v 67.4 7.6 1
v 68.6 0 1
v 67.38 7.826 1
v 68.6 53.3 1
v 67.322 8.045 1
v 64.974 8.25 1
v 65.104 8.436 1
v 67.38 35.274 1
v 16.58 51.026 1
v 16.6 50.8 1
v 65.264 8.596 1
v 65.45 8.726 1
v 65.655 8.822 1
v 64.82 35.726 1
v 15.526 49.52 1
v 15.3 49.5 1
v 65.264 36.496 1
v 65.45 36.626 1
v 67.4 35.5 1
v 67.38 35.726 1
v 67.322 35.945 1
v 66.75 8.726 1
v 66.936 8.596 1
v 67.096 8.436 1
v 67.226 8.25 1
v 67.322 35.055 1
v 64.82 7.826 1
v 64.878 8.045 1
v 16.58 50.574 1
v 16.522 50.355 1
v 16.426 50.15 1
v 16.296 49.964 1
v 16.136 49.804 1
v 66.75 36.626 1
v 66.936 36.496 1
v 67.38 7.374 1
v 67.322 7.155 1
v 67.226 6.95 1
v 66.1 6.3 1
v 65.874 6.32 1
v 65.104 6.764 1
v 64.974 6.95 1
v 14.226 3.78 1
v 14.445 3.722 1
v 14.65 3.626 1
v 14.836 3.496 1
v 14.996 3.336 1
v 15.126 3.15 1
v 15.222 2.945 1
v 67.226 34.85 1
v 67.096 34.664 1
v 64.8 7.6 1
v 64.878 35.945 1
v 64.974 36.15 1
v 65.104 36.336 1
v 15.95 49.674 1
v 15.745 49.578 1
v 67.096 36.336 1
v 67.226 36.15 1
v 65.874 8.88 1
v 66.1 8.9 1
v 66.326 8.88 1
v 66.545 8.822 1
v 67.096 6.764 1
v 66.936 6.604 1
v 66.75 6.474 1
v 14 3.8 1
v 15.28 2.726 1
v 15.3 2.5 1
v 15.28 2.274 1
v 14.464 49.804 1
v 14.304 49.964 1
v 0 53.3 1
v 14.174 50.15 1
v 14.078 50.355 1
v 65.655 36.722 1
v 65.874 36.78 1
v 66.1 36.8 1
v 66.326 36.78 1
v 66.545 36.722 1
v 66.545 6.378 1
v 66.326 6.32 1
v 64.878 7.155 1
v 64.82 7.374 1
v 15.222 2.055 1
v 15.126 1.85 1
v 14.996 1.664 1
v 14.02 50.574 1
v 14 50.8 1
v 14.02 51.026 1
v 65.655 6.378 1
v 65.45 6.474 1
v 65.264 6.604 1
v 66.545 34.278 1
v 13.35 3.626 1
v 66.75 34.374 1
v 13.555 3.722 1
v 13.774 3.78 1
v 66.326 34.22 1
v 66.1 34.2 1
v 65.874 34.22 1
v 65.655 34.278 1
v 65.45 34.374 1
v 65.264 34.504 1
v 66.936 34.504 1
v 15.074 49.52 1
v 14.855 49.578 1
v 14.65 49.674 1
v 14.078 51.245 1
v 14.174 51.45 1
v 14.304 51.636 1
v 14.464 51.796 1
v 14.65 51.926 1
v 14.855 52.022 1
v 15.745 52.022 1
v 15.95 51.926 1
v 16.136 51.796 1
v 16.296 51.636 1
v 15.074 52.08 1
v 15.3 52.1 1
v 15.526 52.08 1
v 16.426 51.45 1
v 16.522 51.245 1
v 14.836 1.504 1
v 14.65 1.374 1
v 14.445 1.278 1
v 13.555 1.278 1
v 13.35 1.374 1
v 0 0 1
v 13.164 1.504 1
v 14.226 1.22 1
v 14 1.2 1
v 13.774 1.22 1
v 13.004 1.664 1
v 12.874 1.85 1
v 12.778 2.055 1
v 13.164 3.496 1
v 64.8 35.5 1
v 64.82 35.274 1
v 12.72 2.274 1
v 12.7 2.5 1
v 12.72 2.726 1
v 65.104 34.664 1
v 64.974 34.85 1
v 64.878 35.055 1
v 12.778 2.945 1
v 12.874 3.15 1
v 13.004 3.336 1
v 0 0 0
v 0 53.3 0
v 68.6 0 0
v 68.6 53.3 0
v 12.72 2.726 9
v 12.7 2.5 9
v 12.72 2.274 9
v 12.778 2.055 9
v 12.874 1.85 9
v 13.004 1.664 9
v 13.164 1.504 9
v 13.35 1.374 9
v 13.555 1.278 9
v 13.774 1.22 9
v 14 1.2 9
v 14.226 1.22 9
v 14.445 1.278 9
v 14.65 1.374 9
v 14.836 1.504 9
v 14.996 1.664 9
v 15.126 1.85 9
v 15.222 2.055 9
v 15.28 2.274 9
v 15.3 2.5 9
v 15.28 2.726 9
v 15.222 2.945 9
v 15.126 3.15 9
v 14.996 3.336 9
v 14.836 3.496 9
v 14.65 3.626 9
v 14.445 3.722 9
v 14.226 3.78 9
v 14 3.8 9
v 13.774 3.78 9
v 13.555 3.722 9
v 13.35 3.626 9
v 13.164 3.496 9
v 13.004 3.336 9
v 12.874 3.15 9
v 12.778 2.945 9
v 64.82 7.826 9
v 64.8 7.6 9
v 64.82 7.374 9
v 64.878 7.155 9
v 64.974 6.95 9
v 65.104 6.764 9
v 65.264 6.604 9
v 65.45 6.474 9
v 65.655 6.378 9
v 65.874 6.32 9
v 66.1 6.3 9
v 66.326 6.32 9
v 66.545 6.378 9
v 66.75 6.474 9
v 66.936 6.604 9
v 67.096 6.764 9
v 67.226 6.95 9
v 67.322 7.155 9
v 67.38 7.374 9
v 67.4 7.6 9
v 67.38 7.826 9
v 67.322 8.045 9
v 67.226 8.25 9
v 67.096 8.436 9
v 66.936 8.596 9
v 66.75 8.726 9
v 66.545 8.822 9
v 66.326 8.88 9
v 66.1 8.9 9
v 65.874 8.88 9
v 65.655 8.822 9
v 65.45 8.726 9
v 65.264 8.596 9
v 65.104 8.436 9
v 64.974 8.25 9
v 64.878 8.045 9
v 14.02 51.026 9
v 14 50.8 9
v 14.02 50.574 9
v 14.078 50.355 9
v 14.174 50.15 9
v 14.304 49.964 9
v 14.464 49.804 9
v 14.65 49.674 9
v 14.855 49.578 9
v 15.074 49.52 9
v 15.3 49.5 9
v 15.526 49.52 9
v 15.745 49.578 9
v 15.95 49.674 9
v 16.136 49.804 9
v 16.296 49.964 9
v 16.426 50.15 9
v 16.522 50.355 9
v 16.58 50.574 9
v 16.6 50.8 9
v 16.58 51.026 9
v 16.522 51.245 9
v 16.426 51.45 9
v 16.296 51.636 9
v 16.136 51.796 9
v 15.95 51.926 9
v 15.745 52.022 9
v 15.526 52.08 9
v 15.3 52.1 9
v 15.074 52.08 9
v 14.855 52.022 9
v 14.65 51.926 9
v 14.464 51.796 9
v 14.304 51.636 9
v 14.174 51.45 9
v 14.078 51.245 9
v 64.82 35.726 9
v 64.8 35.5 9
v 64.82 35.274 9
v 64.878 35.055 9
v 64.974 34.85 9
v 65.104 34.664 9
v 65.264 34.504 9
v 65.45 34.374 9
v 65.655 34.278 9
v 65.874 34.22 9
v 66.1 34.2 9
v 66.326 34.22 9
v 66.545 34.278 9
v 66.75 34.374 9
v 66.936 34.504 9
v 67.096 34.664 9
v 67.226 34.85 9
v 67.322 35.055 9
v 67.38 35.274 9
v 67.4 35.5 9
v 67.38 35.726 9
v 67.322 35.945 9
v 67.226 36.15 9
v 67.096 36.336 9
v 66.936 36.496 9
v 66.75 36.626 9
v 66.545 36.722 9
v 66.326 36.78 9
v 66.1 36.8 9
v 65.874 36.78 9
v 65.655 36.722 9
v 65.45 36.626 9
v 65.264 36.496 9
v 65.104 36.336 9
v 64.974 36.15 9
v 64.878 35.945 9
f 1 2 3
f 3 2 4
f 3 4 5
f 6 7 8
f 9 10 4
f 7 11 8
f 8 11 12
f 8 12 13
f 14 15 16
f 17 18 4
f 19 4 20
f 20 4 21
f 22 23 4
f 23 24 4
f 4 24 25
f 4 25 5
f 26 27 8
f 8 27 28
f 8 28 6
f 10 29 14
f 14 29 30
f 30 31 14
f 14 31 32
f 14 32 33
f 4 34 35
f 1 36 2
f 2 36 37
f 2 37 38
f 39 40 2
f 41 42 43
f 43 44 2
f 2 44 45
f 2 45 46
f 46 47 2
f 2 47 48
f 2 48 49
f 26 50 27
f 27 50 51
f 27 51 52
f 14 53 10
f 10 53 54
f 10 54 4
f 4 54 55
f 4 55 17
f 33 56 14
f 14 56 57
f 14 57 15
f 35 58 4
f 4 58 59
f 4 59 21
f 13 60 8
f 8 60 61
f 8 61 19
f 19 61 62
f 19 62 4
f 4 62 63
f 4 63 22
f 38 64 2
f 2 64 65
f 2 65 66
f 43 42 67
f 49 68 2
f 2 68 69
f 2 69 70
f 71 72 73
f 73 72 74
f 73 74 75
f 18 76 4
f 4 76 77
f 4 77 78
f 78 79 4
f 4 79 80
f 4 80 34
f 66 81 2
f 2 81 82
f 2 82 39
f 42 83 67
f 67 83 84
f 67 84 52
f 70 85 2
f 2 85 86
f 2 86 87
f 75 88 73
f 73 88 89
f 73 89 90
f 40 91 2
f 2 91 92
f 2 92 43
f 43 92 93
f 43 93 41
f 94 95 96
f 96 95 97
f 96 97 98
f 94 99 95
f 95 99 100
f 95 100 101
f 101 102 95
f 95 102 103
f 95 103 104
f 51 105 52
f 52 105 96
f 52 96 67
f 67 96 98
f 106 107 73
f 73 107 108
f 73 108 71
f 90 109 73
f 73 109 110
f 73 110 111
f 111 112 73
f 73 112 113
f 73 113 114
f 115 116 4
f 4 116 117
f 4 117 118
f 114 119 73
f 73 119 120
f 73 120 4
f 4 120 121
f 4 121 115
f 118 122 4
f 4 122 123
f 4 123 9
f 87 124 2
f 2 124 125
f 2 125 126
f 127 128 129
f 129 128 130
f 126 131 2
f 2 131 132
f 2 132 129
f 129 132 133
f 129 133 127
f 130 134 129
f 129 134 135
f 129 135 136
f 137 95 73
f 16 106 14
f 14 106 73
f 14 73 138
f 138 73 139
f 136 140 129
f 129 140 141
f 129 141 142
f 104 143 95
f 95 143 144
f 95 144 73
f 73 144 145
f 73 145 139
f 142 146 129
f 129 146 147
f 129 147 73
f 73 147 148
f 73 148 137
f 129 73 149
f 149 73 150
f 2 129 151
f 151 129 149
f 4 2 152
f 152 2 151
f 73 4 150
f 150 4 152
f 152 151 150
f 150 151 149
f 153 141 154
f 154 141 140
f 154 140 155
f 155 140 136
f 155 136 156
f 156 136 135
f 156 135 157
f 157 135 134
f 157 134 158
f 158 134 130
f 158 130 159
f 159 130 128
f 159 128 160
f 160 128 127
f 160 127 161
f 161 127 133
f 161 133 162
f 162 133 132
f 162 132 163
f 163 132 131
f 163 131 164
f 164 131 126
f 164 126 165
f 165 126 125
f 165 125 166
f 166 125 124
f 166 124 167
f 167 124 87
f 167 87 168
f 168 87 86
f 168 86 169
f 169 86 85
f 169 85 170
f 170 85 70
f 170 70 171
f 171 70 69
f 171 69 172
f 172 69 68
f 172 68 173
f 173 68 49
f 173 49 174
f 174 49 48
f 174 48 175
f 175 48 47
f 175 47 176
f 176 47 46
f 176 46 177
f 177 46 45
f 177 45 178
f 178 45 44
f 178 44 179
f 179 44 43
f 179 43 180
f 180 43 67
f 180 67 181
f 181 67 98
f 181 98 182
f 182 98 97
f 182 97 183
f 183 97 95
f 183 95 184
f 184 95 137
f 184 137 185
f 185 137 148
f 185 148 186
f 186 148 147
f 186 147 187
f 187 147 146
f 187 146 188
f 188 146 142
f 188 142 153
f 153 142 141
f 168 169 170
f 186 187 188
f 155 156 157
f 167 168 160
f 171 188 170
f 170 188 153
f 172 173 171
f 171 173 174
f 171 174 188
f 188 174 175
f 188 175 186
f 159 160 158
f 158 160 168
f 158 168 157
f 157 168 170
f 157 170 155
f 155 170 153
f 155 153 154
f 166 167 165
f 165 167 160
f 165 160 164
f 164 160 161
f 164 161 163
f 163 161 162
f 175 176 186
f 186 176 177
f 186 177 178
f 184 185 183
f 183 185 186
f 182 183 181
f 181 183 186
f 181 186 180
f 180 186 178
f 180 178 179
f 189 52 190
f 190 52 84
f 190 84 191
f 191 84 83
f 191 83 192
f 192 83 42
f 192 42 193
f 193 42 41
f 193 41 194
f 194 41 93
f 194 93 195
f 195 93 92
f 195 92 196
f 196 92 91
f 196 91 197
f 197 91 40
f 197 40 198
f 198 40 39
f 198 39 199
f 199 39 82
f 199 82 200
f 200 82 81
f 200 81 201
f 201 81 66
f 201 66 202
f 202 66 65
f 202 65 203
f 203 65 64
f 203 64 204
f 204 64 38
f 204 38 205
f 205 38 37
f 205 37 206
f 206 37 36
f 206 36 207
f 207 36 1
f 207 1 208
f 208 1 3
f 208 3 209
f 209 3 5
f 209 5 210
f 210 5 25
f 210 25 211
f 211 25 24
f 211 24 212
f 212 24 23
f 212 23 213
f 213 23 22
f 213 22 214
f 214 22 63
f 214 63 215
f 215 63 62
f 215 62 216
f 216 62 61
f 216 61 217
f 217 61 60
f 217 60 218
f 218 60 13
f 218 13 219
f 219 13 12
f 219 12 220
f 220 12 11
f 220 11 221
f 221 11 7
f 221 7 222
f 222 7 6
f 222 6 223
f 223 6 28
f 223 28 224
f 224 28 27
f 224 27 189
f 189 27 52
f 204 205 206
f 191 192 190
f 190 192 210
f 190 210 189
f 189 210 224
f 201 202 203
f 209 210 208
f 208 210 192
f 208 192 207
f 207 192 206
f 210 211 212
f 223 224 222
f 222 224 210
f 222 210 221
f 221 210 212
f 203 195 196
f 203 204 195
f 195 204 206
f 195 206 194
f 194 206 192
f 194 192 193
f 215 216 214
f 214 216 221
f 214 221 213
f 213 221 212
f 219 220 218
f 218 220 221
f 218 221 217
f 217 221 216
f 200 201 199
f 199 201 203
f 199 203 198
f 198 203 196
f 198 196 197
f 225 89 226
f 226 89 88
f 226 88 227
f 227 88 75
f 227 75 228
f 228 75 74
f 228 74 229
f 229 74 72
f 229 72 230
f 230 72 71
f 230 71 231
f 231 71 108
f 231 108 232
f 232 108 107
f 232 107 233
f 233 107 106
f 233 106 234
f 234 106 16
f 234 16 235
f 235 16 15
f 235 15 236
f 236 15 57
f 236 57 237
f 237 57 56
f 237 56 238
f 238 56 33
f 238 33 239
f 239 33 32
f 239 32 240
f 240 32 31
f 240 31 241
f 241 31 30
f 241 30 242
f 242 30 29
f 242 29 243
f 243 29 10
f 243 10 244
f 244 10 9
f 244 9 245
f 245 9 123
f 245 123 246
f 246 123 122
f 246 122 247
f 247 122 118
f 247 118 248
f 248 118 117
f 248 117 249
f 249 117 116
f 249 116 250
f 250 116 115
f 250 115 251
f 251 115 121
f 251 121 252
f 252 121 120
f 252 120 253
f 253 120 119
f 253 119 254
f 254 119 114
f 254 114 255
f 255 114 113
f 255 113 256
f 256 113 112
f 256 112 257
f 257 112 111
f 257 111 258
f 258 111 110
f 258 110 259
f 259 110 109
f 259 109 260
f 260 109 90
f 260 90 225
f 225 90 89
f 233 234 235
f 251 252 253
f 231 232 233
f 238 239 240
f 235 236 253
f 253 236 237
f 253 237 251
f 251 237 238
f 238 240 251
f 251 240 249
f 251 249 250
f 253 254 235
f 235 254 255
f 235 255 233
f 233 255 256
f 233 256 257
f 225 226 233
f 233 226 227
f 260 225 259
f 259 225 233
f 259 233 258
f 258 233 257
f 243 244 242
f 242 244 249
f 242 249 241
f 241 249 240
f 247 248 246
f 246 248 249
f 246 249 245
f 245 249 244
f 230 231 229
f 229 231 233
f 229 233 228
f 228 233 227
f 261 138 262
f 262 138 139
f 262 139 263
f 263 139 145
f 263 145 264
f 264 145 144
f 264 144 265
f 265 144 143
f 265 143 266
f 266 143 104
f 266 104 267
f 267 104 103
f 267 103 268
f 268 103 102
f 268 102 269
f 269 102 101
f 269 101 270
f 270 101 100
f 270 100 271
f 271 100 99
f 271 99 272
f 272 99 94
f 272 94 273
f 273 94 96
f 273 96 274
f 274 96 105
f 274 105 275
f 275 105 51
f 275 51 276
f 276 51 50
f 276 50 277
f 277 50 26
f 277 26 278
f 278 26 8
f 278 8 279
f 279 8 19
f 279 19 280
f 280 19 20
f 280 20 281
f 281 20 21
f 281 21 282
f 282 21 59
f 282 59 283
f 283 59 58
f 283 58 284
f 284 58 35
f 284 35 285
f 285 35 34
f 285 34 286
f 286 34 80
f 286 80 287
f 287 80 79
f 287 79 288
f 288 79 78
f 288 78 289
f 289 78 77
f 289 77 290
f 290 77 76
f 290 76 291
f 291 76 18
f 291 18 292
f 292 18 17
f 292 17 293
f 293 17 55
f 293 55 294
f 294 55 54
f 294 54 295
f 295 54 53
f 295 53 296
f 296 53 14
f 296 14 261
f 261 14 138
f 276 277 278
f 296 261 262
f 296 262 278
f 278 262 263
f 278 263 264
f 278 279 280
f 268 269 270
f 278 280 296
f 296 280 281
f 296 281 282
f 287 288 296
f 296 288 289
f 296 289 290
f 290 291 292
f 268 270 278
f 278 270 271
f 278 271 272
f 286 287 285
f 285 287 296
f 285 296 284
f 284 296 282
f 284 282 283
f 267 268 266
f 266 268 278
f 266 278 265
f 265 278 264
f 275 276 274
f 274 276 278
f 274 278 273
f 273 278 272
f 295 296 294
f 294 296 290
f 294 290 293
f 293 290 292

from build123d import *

# Parameters (mm, degrees)
SKETCH1_W           = 68.6
SKETCH1_H           = 53.3
BOSS_EXTRUDE1_DEPTH = 1
SKETCH2_R           = 1.3
BOSS_EXTRUDE2_DEPTH = 8


with BuildPart() as part:
    # Sketch1 → Boss-Extrude1 (new body)
    with BuildSketch(Plane.XY):
        with Locations((34.3, 26.65)):
            Rectangle(SKETCH1_W, SKETCH1_H)
    extrude(amount=BOSS_EXTRUDE1_DEPTH)

    # Sketch2 → Boss-Extrude2 (add)
    with BuildSketch(Plane.XY.offset(1)):
        with Locations(Location((14, 2.5, 0), (0, 0, 180))):
            Circle(SKETCH2_R)
        with Locations(Location((15.3, 50.8, 0), (0, 0, 180))):
            Circle(SKETCH2_R)
        with Locations(Location((66.1, 7.6, 0), (0, 0, 180))):
            Circle(SKETCH2_R)
        with Locations(Location((66.1, 35.5, 0), (0, 0, 180))):
            Circle(SKETCH2_R)
    extrude(amount=BOSS_EXTRUDE2_DEPTH)


solid = part.part
